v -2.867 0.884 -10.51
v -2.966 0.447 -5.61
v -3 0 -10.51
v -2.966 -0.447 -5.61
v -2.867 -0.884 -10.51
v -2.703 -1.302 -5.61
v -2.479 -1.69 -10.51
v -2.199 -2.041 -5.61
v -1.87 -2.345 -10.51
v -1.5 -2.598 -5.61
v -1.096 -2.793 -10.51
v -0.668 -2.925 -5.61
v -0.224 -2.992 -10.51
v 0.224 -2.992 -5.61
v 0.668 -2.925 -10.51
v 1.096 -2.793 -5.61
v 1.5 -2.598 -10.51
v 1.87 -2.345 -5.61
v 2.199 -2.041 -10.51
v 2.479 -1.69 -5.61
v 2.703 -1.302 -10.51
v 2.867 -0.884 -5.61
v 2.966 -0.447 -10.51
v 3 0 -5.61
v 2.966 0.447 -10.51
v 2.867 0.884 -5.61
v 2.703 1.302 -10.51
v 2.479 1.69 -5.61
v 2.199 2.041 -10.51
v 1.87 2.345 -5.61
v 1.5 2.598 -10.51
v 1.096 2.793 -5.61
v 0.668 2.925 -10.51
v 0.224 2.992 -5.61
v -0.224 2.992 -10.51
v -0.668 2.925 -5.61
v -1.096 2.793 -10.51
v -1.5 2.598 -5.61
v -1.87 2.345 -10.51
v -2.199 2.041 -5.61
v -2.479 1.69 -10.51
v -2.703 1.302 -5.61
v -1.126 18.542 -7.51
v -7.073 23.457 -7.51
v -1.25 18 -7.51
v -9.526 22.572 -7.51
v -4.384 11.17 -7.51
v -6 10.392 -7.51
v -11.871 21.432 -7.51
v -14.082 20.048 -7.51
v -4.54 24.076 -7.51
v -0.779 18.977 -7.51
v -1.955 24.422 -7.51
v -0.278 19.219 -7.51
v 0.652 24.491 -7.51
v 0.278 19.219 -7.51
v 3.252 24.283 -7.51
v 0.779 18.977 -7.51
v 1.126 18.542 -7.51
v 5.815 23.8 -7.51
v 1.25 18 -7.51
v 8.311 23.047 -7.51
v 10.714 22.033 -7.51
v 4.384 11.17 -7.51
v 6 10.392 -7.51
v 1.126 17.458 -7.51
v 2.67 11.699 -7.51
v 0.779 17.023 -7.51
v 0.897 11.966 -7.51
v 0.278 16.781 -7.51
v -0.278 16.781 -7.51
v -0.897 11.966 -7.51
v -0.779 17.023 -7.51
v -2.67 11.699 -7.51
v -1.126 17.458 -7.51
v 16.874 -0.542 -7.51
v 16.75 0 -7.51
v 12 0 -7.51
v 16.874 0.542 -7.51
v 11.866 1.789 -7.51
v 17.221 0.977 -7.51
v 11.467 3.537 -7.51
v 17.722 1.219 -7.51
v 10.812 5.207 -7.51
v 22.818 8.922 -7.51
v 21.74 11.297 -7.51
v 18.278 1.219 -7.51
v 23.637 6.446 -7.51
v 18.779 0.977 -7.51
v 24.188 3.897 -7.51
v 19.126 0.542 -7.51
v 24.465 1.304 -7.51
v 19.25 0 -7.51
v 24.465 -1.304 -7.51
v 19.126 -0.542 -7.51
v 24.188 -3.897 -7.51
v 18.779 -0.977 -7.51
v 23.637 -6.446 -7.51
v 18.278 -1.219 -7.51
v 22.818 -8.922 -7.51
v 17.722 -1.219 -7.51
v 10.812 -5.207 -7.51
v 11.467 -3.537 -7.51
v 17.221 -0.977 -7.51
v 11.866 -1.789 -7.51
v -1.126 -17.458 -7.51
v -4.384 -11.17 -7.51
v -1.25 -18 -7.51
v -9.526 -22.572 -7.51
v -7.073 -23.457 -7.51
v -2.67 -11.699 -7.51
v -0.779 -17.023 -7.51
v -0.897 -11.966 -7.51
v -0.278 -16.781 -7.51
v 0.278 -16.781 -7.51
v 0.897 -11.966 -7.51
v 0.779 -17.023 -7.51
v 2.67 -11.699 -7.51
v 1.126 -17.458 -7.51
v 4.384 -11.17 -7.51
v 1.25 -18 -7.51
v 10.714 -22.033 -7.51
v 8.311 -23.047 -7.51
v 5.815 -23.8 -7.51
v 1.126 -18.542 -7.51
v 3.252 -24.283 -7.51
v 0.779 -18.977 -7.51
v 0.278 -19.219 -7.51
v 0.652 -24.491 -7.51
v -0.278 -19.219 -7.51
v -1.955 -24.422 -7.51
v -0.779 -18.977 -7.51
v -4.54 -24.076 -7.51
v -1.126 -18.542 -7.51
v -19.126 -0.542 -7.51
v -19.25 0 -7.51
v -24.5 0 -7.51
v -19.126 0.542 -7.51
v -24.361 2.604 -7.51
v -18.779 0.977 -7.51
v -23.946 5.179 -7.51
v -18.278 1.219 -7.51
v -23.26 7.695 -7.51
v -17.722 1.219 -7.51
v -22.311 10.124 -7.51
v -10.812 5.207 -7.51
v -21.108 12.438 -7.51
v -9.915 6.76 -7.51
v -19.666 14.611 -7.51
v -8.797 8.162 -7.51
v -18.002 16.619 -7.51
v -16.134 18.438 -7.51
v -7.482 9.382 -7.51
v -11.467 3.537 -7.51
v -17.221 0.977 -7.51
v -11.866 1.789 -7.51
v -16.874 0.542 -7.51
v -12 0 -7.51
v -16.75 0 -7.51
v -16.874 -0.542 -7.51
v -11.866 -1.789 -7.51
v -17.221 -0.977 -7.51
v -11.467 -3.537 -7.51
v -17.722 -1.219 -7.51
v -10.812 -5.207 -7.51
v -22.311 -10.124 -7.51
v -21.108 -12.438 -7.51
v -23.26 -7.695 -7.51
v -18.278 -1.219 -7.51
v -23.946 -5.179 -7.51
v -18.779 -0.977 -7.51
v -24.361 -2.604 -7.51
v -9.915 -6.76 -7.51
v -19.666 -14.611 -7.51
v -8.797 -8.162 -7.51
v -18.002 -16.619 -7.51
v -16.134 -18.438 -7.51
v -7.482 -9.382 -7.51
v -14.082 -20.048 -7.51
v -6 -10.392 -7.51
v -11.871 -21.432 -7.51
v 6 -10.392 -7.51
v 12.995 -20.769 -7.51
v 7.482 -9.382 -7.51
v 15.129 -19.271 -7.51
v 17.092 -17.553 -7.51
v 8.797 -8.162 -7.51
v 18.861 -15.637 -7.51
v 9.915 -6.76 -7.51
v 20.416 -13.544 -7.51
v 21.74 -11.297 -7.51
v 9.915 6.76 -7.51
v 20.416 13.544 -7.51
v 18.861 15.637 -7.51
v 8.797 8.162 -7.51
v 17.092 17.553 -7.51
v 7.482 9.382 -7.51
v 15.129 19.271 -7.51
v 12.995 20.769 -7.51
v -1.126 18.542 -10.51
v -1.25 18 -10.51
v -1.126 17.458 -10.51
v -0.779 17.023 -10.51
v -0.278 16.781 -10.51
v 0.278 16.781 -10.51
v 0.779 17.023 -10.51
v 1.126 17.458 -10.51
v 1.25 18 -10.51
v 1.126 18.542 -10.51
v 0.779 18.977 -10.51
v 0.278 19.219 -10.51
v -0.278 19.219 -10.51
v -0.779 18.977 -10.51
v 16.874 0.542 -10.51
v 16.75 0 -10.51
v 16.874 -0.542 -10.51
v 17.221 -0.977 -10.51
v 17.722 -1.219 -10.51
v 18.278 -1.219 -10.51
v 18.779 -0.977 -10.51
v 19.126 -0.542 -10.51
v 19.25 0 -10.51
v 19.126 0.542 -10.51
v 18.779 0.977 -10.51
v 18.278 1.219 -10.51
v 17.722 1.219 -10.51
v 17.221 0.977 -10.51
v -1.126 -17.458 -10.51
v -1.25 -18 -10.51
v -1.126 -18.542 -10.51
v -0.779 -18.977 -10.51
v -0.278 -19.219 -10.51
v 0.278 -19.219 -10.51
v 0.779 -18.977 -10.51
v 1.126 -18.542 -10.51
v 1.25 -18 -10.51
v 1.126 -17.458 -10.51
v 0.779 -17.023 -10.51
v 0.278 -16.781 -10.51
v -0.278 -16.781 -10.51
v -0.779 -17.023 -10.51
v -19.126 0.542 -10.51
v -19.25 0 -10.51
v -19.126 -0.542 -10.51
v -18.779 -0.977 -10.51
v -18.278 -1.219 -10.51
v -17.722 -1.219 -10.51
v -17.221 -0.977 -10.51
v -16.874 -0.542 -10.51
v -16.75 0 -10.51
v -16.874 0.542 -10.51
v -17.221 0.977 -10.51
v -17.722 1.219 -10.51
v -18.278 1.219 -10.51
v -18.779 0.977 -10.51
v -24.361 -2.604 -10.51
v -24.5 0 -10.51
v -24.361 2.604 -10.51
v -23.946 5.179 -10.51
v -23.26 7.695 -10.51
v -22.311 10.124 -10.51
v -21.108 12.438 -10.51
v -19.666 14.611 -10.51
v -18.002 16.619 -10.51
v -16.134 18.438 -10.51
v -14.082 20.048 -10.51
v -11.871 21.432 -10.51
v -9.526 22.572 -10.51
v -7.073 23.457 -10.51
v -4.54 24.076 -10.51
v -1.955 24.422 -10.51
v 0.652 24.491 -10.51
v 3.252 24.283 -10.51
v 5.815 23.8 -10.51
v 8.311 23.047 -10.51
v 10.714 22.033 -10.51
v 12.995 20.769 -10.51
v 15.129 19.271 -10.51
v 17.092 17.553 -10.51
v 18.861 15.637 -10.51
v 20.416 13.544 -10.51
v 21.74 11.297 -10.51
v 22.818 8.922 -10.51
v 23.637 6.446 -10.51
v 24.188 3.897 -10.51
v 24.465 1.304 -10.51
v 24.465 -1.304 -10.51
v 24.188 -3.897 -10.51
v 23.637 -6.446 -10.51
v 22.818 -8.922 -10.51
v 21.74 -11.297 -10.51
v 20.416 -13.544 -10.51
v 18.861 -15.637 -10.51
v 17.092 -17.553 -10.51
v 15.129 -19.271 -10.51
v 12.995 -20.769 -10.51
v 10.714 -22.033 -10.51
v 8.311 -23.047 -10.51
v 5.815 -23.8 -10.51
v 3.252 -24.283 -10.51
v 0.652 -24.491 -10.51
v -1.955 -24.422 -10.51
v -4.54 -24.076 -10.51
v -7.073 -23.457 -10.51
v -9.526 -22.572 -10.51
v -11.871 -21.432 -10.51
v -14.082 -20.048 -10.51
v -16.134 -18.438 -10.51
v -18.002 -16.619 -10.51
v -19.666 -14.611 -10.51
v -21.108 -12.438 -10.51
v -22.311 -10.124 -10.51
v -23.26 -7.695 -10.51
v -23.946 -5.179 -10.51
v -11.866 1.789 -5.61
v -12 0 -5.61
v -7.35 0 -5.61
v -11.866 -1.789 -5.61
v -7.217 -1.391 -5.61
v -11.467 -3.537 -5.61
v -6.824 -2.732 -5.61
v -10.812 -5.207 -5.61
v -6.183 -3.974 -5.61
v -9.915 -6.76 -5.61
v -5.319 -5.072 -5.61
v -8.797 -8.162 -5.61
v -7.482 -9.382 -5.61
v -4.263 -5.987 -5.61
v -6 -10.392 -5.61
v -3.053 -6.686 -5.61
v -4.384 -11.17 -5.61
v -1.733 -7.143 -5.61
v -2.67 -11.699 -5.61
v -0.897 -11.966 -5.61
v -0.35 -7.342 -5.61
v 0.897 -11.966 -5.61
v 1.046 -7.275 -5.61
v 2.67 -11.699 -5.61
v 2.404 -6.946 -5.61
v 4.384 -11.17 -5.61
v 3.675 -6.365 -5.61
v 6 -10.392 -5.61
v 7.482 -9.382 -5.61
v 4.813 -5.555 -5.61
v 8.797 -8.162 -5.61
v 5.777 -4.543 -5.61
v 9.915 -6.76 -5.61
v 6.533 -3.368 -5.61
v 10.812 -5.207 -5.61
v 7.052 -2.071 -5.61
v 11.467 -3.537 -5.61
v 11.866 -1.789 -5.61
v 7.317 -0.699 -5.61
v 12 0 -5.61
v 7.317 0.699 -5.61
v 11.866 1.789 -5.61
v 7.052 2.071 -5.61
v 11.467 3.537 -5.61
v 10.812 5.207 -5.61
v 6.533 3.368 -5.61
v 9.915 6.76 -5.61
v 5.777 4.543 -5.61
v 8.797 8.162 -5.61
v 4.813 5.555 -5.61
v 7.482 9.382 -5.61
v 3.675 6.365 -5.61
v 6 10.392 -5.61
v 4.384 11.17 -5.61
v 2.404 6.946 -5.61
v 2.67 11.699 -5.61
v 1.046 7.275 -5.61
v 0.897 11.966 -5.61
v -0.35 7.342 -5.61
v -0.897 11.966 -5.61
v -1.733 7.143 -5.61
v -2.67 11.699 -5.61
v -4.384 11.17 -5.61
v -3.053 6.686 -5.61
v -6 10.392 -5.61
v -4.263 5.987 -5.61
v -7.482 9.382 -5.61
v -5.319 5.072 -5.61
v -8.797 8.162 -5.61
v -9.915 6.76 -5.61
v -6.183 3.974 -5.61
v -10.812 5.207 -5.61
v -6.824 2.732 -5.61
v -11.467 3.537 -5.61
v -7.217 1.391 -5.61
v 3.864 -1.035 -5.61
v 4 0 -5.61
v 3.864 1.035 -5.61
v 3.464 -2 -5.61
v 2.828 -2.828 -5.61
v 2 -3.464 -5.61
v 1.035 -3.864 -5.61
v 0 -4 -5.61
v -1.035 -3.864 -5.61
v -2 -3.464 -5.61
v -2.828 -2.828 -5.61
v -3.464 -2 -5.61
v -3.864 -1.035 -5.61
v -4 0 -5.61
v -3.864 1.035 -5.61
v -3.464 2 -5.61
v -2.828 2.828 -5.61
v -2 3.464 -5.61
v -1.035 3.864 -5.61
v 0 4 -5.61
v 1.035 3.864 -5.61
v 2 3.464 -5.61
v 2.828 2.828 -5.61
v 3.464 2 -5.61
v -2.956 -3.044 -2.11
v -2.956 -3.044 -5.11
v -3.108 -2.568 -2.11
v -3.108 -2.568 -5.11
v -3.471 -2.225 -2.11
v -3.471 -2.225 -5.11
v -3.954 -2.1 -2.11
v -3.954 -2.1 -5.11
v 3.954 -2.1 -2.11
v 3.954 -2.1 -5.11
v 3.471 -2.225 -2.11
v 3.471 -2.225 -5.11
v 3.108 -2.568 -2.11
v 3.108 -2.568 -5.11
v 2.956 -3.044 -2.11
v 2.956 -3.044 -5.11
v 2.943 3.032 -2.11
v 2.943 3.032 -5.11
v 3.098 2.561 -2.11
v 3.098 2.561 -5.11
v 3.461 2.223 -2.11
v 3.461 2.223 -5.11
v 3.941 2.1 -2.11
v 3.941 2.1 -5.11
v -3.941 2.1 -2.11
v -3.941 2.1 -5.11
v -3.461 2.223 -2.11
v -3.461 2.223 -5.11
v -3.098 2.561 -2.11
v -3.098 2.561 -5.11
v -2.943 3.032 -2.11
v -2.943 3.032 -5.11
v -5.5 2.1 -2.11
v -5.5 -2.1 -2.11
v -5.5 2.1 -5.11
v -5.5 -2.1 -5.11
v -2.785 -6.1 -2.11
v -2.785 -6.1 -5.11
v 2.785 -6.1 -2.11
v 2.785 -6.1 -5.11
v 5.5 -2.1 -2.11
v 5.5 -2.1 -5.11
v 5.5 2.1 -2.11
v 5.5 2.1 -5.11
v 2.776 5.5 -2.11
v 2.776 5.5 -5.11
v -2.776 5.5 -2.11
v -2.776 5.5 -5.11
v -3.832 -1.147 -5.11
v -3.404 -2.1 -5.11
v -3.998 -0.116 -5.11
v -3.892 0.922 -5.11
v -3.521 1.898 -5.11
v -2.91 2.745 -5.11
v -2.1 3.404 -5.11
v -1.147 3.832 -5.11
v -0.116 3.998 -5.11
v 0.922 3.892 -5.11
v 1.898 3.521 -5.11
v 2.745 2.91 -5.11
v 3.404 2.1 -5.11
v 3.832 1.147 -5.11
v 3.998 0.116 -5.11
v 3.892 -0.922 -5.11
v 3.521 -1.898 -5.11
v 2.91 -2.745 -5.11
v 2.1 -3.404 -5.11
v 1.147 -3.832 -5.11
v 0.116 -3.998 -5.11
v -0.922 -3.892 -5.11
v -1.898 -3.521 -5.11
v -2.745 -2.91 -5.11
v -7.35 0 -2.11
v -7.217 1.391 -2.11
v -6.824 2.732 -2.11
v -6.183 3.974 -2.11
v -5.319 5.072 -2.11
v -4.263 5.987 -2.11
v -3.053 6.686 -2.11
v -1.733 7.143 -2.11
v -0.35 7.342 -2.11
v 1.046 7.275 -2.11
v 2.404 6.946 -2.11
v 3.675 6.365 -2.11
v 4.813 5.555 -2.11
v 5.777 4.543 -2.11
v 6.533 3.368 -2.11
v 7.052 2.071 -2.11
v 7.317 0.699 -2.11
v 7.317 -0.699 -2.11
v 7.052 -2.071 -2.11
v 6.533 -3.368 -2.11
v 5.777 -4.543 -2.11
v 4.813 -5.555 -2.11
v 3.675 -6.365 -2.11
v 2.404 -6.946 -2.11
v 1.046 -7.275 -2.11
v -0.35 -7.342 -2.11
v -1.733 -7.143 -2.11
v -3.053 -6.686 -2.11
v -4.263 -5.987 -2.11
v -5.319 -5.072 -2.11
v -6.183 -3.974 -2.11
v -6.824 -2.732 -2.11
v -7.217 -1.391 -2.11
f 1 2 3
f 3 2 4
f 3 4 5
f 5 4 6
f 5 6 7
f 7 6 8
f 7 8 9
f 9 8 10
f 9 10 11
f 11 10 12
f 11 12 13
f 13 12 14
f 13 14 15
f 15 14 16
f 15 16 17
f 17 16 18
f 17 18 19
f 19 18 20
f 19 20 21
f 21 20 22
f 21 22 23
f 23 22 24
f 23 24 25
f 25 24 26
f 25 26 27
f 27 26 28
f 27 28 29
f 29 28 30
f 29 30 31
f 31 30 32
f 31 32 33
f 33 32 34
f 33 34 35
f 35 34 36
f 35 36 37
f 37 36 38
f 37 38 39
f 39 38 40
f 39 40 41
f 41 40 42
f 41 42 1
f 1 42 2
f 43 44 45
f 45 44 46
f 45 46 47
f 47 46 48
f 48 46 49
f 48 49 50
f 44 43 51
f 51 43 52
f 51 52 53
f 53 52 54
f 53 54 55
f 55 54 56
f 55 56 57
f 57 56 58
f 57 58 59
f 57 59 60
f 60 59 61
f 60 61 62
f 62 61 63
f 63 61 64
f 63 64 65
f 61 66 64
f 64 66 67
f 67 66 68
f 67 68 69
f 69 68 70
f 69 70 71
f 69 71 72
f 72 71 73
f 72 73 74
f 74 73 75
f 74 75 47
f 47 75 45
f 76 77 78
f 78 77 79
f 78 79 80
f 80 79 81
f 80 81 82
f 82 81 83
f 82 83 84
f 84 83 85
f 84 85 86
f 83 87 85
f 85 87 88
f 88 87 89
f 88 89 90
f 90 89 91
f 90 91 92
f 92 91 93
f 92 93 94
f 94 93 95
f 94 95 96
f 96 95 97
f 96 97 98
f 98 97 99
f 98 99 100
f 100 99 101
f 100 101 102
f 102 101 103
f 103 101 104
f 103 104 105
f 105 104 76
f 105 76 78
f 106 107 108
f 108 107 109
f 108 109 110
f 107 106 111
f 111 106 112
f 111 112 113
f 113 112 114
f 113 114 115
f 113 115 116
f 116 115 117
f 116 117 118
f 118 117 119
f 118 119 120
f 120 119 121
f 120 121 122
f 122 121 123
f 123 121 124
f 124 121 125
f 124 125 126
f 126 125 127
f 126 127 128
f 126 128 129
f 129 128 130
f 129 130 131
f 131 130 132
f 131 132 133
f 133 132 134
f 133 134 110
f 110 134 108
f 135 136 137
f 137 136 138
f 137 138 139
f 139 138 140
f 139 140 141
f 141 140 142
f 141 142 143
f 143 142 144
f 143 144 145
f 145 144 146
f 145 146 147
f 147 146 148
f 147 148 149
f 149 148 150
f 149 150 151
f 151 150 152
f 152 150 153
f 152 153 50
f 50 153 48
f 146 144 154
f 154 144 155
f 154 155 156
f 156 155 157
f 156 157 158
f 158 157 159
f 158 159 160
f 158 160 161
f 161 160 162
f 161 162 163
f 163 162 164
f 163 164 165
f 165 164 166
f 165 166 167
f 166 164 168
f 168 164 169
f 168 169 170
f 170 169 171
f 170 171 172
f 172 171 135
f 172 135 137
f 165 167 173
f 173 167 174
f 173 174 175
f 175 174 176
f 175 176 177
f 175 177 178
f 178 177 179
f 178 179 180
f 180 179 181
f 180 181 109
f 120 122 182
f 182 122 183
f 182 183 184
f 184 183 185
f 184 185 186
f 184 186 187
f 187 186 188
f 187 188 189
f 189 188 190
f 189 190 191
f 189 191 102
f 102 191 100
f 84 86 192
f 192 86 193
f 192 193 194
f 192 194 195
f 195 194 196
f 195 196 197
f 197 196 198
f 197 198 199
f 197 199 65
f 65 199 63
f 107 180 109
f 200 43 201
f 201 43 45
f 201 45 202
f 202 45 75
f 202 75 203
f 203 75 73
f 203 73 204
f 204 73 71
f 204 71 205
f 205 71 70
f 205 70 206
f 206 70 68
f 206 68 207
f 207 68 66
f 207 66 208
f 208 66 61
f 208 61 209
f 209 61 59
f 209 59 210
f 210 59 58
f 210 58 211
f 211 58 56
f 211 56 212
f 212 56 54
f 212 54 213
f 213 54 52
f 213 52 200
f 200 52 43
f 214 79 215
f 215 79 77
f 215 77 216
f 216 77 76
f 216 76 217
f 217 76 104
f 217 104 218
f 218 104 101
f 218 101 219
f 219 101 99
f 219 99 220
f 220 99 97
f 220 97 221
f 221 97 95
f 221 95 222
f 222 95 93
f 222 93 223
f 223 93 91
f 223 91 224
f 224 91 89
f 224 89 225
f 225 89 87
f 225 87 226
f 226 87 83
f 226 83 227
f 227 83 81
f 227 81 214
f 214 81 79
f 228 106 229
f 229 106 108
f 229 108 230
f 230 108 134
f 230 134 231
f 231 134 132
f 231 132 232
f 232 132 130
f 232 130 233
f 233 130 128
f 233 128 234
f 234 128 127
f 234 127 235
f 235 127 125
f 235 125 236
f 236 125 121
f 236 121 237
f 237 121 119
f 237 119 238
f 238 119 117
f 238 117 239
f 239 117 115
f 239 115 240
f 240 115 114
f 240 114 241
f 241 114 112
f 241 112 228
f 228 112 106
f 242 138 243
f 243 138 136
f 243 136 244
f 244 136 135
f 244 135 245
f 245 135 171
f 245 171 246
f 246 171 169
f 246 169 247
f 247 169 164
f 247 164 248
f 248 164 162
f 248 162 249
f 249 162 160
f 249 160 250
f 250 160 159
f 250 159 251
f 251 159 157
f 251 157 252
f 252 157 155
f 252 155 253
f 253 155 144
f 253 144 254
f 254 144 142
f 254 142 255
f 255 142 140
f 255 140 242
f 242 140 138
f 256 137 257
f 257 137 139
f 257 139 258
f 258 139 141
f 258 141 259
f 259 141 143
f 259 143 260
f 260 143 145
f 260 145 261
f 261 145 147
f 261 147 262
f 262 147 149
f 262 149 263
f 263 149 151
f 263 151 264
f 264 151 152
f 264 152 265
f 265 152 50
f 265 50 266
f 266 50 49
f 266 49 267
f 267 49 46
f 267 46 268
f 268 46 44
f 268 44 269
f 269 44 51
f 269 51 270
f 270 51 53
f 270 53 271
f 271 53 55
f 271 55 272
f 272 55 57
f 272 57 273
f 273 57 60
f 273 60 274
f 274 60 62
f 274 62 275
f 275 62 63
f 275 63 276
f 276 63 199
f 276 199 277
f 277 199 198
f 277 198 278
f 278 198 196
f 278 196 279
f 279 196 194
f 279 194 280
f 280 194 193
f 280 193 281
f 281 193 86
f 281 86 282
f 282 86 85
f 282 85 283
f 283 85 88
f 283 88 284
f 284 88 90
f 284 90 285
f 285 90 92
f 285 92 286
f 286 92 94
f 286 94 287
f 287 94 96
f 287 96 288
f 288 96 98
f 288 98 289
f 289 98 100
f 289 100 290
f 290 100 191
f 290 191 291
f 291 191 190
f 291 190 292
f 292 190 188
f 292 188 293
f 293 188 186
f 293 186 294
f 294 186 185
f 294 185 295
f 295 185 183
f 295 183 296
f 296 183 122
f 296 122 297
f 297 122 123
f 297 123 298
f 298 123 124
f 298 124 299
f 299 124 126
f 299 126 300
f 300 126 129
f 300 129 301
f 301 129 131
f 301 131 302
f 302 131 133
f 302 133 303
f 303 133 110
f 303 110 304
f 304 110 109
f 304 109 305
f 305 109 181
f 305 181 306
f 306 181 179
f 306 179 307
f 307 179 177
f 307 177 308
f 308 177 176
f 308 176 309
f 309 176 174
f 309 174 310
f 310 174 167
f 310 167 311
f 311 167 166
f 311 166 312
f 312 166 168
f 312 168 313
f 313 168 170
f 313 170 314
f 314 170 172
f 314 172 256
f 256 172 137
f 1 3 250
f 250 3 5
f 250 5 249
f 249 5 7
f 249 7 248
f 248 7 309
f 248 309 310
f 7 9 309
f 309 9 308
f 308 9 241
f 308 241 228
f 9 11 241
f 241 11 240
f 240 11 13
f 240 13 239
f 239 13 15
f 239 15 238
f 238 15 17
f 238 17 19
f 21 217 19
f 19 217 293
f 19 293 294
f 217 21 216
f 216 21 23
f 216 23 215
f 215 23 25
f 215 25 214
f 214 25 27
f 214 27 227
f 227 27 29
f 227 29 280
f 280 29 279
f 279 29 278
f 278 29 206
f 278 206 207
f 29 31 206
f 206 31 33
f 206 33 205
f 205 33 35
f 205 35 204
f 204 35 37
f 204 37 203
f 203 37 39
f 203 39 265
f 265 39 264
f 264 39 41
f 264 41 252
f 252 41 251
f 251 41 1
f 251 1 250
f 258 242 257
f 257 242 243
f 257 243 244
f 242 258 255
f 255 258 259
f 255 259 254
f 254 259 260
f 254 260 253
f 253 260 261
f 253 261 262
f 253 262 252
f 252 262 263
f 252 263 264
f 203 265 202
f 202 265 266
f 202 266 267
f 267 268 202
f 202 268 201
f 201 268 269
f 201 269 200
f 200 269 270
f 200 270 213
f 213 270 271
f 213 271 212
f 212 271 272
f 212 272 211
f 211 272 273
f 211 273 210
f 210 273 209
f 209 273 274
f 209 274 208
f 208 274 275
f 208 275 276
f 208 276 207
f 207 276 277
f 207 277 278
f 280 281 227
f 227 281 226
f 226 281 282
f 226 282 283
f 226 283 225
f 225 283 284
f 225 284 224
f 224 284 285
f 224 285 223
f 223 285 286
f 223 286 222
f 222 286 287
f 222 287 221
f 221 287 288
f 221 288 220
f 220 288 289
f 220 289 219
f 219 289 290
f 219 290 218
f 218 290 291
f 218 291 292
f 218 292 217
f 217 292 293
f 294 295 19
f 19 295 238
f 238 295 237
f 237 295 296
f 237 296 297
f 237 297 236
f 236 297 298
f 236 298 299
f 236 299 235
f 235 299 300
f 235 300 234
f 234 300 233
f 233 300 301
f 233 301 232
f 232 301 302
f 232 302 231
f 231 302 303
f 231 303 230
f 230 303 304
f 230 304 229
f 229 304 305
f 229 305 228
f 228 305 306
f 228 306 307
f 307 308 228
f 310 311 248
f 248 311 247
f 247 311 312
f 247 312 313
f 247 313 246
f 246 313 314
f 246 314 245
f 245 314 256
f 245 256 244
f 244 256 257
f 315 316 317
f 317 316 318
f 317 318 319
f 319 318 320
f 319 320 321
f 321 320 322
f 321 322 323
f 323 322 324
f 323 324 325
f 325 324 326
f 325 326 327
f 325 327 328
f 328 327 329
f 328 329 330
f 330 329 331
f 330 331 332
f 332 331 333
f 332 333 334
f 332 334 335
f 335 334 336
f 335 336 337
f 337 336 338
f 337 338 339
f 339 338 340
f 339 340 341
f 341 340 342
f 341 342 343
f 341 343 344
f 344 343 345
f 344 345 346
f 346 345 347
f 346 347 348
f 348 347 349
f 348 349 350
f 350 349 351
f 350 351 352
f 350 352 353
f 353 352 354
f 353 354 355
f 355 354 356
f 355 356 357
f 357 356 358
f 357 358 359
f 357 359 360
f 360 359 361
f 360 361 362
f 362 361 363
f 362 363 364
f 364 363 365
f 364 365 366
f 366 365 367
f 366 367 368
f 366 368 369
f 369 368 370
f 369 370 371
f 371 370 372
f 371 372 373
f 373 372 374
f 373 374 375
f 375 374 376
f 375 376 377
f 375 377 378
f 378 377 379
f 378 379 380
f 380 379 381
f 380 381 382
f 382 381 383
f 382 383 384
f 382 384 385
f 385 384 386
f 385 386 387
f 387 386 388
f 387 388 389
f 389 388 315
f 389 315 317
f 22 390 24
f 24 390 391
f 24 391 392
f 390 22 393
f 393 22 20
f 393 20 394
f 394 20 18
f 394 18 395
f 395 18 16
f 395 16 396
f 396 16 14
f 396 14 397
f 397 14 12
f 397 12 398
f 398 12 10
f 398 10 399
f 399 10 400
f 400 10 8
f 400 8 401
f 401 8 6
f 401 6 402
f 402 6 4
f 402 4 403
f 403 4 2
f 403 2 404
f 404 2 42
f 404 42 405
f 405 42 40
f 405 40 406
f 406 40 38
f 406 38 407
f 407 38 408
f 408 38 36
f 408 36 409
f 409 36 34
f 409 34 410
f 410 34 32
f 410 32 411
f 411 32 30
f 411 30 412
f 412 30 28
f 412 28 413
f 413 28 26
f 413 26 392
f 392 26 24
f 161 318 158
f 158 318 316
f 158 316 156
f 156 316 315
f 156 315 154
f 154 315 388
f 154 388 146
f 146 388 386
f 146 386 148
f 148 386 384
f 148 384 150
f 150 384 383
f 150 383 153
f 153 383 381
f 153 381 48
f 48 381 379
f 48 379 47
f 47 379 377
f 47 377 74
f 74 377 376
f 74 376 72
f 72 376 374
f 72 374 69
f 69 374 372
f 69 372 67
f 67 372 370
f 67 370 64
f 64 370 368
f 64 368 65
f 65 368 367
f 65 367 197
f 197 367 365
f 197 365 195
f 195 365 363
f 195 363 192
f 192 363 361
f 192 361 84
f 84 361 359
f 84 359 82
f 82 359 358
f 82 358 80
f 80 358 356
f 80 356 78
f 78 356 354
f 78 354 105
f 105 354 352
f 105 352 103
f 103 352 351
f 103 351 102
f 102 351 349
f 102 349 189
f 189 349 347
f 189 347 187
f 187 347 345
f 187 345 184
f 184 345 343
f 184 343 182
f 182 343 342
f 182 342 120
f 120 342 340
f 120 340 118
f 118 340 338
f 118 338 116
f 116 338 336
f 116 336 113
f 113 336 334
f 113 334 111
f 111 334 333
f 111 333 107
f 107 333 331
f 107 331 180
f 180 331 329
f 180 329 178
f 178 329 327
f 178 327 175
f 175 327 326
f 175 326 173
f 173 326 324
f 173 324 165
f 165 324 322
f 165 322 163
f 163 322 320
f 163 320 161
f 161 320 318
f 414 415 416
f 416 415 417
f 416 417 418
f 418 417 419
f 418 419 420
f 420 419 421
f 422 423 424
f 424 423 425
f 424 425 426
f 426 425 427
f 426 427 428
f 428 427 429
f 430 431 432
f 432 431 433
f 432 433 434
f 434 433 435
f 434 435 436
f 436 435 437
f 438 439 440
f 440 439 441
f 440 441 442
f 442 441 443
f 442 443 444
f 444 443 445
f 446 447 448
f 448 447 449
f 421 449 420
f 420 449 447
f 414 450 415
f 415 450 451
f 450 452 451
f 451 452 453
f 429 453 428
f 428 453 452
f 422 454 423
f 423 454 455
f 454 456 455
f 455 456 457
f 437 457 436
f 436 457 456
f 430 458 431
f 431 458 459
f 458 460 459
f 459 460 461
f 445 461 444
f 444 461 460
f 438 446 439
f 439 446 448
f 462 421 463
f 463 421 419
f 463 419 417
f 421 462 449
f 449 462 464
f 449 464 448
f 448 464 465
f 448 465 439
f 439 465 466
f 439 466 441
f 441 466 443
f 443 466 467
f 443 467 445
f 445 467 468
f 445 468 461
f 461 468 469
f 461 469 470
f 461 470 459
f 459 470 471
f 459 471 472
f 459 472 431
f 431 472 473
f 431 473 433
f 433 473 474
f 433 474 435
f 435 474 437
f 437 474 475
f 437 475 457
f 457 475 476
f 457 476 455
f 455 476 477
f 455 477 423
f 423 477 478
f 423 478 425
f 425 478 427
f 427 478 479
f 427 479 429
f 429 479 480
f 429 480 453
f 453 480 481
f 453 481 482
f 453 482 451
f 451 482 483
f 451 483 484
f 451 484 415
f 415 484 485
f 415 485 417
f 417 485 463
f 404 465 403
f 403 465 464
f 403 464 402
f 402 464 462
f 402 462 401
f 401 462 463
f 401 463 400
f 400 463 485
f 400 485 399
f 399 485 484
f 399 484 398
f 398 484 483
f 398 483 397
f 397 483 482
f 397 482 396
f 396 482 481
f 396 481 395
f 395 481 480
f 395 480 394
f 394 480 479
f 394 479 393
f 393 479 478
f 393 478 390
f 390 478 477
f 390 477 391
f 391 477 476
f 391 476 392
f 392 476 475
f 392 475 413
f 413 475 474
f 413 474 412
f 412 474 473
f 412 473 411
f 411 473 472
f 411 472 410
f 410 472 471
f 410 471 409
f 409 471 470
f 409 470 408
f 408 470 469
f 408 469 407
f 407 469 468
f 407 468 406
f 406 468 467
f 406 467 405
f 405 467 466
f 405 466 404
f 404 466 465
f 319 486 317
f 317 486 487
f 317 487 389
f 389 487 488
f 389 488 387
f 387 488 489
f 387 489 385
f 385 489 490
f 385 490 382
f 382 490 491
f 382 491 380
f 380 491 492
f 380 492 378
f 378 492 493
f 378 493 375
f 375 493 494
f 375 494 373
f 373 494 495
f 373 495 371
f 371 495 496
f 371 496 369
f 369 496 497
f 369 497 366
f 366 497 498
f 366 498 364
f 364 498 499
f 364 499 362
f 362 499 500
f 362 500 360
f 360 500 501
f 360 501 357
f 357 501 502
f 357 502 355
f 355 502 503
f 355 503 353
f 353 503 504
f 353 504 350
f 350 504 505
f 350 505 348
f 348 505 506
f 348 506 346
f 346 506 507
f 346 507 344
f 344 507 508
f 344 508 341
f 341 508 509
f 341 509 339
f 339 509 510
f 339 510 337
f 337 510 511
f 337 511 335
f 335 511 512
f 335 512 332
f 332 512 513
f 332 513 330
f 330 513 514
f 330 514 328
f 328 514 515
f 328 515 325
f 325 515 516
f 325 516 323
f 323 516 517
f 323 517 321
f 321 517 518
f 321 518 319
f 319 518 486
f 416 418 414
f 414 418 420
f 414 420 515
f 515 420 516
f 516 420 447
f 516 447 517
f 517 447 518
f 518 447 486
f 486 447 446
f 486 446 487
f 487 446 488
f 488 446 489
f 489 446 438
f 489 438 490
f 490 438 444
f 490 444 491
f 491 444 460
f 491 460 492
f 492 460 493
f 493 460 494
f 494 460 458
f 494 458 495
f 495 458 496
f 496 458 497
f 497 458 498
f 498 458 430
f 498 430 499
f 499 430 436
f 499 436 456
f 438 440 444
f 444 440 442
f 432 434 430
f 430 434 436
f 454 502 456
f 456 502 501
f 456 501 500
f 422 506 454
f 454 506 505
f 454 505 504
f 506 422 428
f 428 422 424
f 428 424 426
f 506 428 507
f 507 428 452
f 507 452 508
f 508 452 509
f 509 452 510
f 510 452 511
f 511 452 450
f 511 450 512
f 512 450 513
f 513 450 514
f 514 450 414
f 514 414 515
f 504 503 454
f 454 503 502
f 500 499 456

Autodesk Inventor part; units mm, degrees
ref_plane "YZ Plane" through (0, 0, 0) normal (1, 0, 0) x (0, 1, 0)
ref_plane "XZ Plane" through (0, 0, 0) normal (0, 1, 0) x (-1, 0, 0)
ref_plane "XY Plane" through (0, 0, 0) normal (0, 0, 1) x (1, 0, 0)
sketch "스케치1" plane through (0, 0, 0) normal (0, 0, 1) x (1, 0, 0)
  circle A0 centre (0, 0) radius 2.5
  line L0 (-6.35, 0) -> (6.35, 0) construction
  line L1 (-6.35, -1.9) -> (6.35, -1.9)
  line L2 (6.35, 1.9) -> (-6.35, 1.9)
  arc A1 (-6.35, 1.9) -> (-6.35, -1.9) centre (-6.35, 0) ccw
  arc A2 (6.35, -1.9) -> (6.35, 1.9) centre (6.35, 0) ccw
  line L3 (0, 14.5) -> (0, -14.5) construction
  circle A3 centre (0, 14.5) radius 0.5
  circle A4 centre (0, -14.5) radius 0.5
  circle A5 centre (6.35, 0) radius 0.5
  circle A6 centre (-6.35, 0) radius 0.5
  circle A7 centre (-4.25, 0) radius 0.5
  circle A8 centre (4.25, 0) radius 0.5
  line L4 (0, -1.9) -> (0, -18.5)
  line L5 (0, 1.9) -> (0, 15.9)
  arc A9 (1.9954, 14.0355) -> (-1.9954, 14.0355) centre (0, 13.9) ccw
  arc A10 (-1.9969, -16.6117) -> (1.9969, -16.6117) centre (0, -16.5) ccw
  circle A11 centre (0, 0) radius 3.4
  line L6 (-1.9954, 14.0355) -> (-2.8196, 1.9)
  line L7 (1.9954, 14.0355) -> (2.8196, 1.9)
  line L8 (-2.8196, -1.9) -> (-1.9969, -16.6117)
  line L9 (2.8196, -1.9) -> (1.9969, -16.6117)
  circle A12 centre (0, 12.5) radius 0.5
  circle A13 centre (0, 10.5) radius 0.5
  circle A14 centre (0, 8.5) radius 0.5
  circle A15 centre (0, 6.5) radius 0.5
  circle A16 centre (0, 4.5) radius 0.5
  circle A17 centre (0, 0) radius 2.35
  circle A18 centre (0, -16.5) radius 0.5
  circle A19 centre (0, -12.5) radius 0.5
  circle A20 centre (0, -10.5) radius 0.5
  circle A21 centre (0, -8.5) radius 0.5
  circle A22 centre (0, -6.5) radius 0.5
  circle A23 centre (0, -4.5) radius 0.5
  dimension "d0" = 5
  dimension "d1" = 1.9
  dimension "d2" = 16.5
  dimension "d3" = 29
  dimension "d4" = 1
  dimension "d5" = 1
  dimension "d6" = 1
  dimension "d7" = 1
  dimension "d10" = 2.1
  dimension "d17" = 2.1
  dimension "d24" = 16.6
  dimension "d25" = 14
  dimension "d26" = 4
  dimension "d27" = 4
  dimension "d28" = 6.8
  dimension "d31" = 2
  dimension "d36" = 4.7
  dimension "d39" = 2
  dimension "d46" = 2
extrude "돌출1" add sketch "스케치1" along normal blind 2.2 contours A0 L1 A17 L2 | A0 L2 A11 L1 | L2 A17 L5 A0 | A0 L5 A11 L2 | L1 A11 L4 A0 | A0 L4 A17 L1 | L5 A17 L2 A0 | A0 L2 A11 L5 | A17 L1 L2 | L2 L5 A17 | L4 A11 L1 A0 | A0 L1 A17 L4 | A17 L4 L1 | L2 A17 L1 A0 | A0 L1 A11 L2 | L5 L2 A17 | A17 L1 L4
extrude "돌출2" add sketch "스케치1" against normal blind 2.11 contours A0 L1 A17 L2 | A0 L2 A11 L1 | L2 A17 L5 A0 | A0 L5 A11 L2 | L1 A11 L4 A0 | A0 L4 A17 L1 | L5 A17 L2 A0 | A0 L2 A11 L5 | L2 A2 L1 A11 | A11 L5 A16 A15 A14 A13 A12 A3 A9 L7 | A17 L1 L2 | L2 L5 A17 | L4 A11 L1 A0 | A0 L1 A17 L4 | A17 L4 L1 | L9 A10 L4 A18 A4 A19 A20 A21 A22 A23 A11 | L2 A17 L1 A0 | A0 L1 A11 L2 | L5 L2 A17 | A11 L6 A9 L5 A3 A12 A13 A14 A15 A16 | A17 L1 L4 | L4 A23 A22 A21 A20 A19 A4 A18 A10 L8 A11 | A11 L1 A1 L2
extrude "돌출3" cut sketch "스케치1" along normal blind 3.65 contours A17 L1 L2 | L2 L5 A17 | A17 L4 L1 | L5 L2 A17 | A17 L1 L4
sketch "스케치2" plane through (0, 0, 0) normal (0, 0, 1) x (1, 0, 0)
  circle A0 centre (0, 0) radius 1.25
  dimension "d57" = 2.5
extrude "돌출4" cut sketch "스케치2" against normal blind 7.6
sketch "스케치3" plane through (0, 0, -2.11) normal (0, 0, -1) x (-1, 0, 0)
  circle A0 centre (0, 0) radius 2.25
  dimension "d60" = 4.5
extrude "돌출5" cut sketch "스케치3" against normal blind 1
sketch "스케치4" plane through (0, 0, -2.11) normal (0, 0, -1) x (-1, 0, 0)
  point P0 (0, 0)
sketch "스케치5" plane through (0, 0, -2.11) normal (0, 0, -1) x (-1, 0, 0)
  circle A0 centre (0, 0) radius 3.4
  circle A1 centre (0, 0) radius 2.25
  dimension "d63" = 4.5
  dimension "d64" = 6.8
extrude "돌출6" add sketch "스케치5" along normal blind 0.4
sketch "스케치6" plane through (0, 0, -2.11) normal (0, 0, -1) x (-1, 0, 0)
  line L0 (0.9014, 15.3127) -> (-1.0592, 15.3127)
  line L1 (-1.0592, 15.3127) -> (-1.0592, 3.6394)
  line L2 (-1.0592, 3.6394) -> (0.9014, 3.6394)
  line L3 (0.9014, 3.6394) -> (0.9014, 15.3127)
  line L4 (1.0141, -3.7747) -> (-1.0592, -3.7747)
  line L5 (-1.0592, -3.7747) -> (-1.0592, -17.386)
  line L6 (-1.0592, -17.386) -> (1.0141, -17.386)
  line L7 (1.0141, -17.386) -> (1.0141, -3.7747)
  point P0 (0, 0)
extrude "돌출7" add sketch "스케치6" against normal blind 2.11
sketch "스케치7" plane through (0, 0, -2.11) normal (0, 0, -1) x (-1, 0, 0)
  circle A0 centre (0, 14.3) radius 0.5
  arc A1 (1.9954, 14.0355) -> (-1.9954, 14.0355) centre (0, 13.9) ccw projected
  line L0 (0, 0) -> (0, 0.7105)
  line L1 (0, 0) -> (0.8275, 0)
  circle A2 centre (0, 12.3) radius 0.5
  circle A3 centre (0, 10.3) radius 0.5
  circle A4 centre (0, 8.3) radius 0.5
  circle A5 centre (0, 6.3) radius 0.5
  circle A6 centre (0, 4.3) radius 0.5
  line L2 (0, 15.9) -> (3.4178, 15.9)
  arc A7 (1.9954, 14.0355) -> (-1.9954, 14.0355) centre (0, 13.9) ccw projected
  circle A8 centre (0, -16.9) radius 0.5
  arc A9 (-1.9969, -16.6117) -> (1.9969, -16.6117) centre (0, -16.5) ccw projected
  circle A10 centre (0, -14.9) radius 0.5
  circle A11 centre (0, -12.9) radius 0.5
  circle A12 centre (0, -10.9) radius 0.5
  circle A13 centre (0, -8.9) radius 0.5
  circle A14 centre (0, -6.9) radius 0.5
  circle A15 centre (0, -4.9) radius 0.5
  point P0 (0, -18.5)
  dimension "d69" = 1
  dimension "d73" = 2
  dimension "d78" = 1.6
  dimension "d79" = 1
  dimension "d80" = 1.6
  dimension "d86" = 2
extrude "돌출8" cut sketch "스케치7" against normal blind 2.11
sketch "스케치9" plane through (0, 0, -2.11) normal (0, 0, -1) x (-1, 0, 0)
  circle A0 centre (0, 8.3) radius 0.5 projected
  line L0 (0.5, 8.3) -> (3.8465, 8.3)
  line L1 (3.8465, 8.3) -> (3.8465, 17.7965)
  line L2 (3.8465, 17.7965) -> (-4.3088, 17.7965)
  line L3 (-4.3088, 17.7965) -> (-4.3088, 8.3)
  line L4 (-4.3088, 8.3) -> (0.2806, 8.3)
  circle A1 centre (0, -8.9) radius 0.5 projected
  line L5 (0, -8.9) -> (5.2333, -8.9)
  line L6 (5.2333, -8.9) -> (5.2333, -19.7775)
  line L7 (5.2333, -19.7775) -> (-4.9031, -19.7775)
  line L8 (-4.9031, -19.7775) -> (-4.9031, -8.9)
  line L9 (-4.9031, -8.9) -> (0, -8.9)
  point P0 (0, 0)
  point P1 (0.5, -8.9)
  point P2 (-0.5, -8.9)
  point P3 (-0.5, 8.3)
extrude "돌출9" cut sketch "스케치9" against normal blind 10 contours A0 L4 L3 L2 L1 L0 | L5 L6 L7 L8 L9 A1
sketch "스케치10" plane through (0, 0, -2.11) normal (0, 0, -1) x (-1, 0, 0)
  line L0 (-0.0004, 7.8) -> (4.3151, 7.8)
  line L1 (4.3151, 7.8) -> (3.7805, 10.6296)
  line L2 (3.7805, 10.6296) -> (-3.3513, 10.6296)
  line L3 (-3.3513, 10.6296) -> (-3.4414, 7.8)
  line L4 (-3.4414, 7.8) -> (-0.0004, 7.8)
  arc A0 (-0.5, 8.3) -> (0.5, 8.3) centre (0, 8.3) ccw projected
  arc A1 (0.5, -8.9) -> (-0.5, -8.9) centre (0, -8.9) ccw projected
  line L5 (0, -8.4) -> (4.5069, -8.4)
  line L6 (4.5069, -8.4) -> (4.5069, -10.1694)
  line L7 (4.5069, -10.1694) -> (-4.0138, -10.1694)
  line L8 (-4.0138, -10.1694) -> (-4.0138, -8.4)
  line L9 (-4.0138, -8.4) -> (0, -8.4)
  point P0 (0, 0)
extrude "돌출10" cut sketch "스케치10" against normal blind 10
fillet "모깎기1" radius 2 4 edges at (2.4189, 7.8, -1.055) (-2.4189, 7.8, -1.055) (-2.4561, -8.4, -1.055) (2.4561, -8.4, -1.055)
sketch "스케치11" plane through (0, 0, -2.11) normal (0, 0, -1) x (-1, 0, 0)
  line L0 (-6.35, -1.9) -> (-2.8196, -1.9) projected
  line L1 (-2.8196, 1.9) -> (-6.35, 1.9) projected
  circle A0 centre (0, 6.3) radius 0.5 projected
  circle A1 centre (0, -6.9) radius 0.5 projected
  line L2 (2.8196, 1.9) -> (2.5455, 5.9355) projected
  line L3 (-2.5455, 5.9355) -> (-2.8196, 1.9) projected
  line L4 (0.5501, 7.8) -> (-0.5501, 7.8) projected
  line L5 (-2.8196, -1.9) -> (-2.5617, -6.5117) projected
  line L6 (2.5617, -6.5117) -> (2.8196, -1.9) projected
  point P0 (0, 0)
  point P1 (-4.5848, -1.9)
  point P2 (-4.5848, 1.9)
  point P3 (0, 7.8)
  dimension "d95" = 3.8
  dimension "d96" = 6.3
  dimension "d97" = 6.9
  dimension "d98" = 7.77
  dimension "d99" = 7.8
  dimension "d100" = 6.401
sketch "스케치12" plane through (0, 0, -2.11) normal (0, 0, -1) x (-1, 0, 0)
  line L0 (2.5785, 5.3) -> (-2.5887, 5.3)
  line L1 (-2.5455, 5.9355) -> (-2.8196, 1.9) projected
  circle A0 centre (0, 4.3) radius 0.5 projected
  line L2 (3.3006, -5.9) -> (-2.5959, -5.9)
  line L3 (-2.8196, -1.9) -> (-2.5617, -6.5117) projected
  circle A1 centre (0, -4.9) radius 0.5 projected
  line L4 (2.8196, 1.9) -> (6.35, 1.9) projected
  line L5 (5.3, 1.9) -> (5.3, -1.9)
  circle A2 centre (4.25, 0) radius 0.5 projected
  line L6 (-6.35, 1.9) -> (-2.8196, 1.9) projected
  line L7 (-5.3, 1.9) -> (-5.3, -2.6397)
  circle A3 centre (-4.25, 0) radius 0.5 projected
  line L8 (5.3, 1.9) -> (9.4862, 1.9)
  line L9 (9.4862, 1.9) -> (9.4862, -2.8158)
  line L10 (9.4862, -2.8158) -> (5.3, -2.8158)
  line L11 (5.3, -2.8158) -> (5.3, 1.9)
  line L12 (3.3006, -5.9) -> (-3.636, -5.9)
  line L13 (-3.636, -5.9) -> (-3.636, -9.5734)
  line L14 (-3.636, -9.5734) -> (3.3006, -9.5734)
  line L15 (3.3006, -9.5734) -> (3.3006, -5.9)
  line L16 (-5.3, -2.6397) -> (-8.4677, -2.6397)
  line L17 (-8.4677, -2.6397) -> (-8.4677, 1.9)
  line L18 (-8.4677, 1.9) -> (-5.3, 1.9)
  line L19 (-5.3, 1.9) -> (-5.3, -2.6397)
  line L20 (-2.5887, 5.3) -> (3.3006, 5.3)
  line L21 (3.3006, 5.3) -> (3.3006, 8.0343)
  line L22 (3.3006, 8.0343) -> (-2.5887, 8.0343)
  line L23 (-2.5887, 8.0343) -> (-2.5887, 5.3)
  point P0 (0, 0)
  point P1 (-0.0051, 5.3)
  point P2 (-2.5617, -5.9)
  point P3 (-2.5959, -5.9)
  dimension "d101" = 1
  dimension "d102" = 1
  dimension "d104" = 1.05
  dimension "d105" = 1.05
extrude "돌출11" cut sketch "스케치12" against normal blind 10 contours L0 L23 L22 L21 L20 | L15 L14 L13 L12 L2 | L4 L8 L9 L10 L11 L5 | L6 L7 L16 L17 L18
sketch "스케치14" plane through (0, 0, -2.11) normal (0, 0, -1) x (-1, 0, 0)
  line L0 (2.5887, 5.3) -> (-2.5887, 5.3) projected
  line L1 (-2.5887, 5.3) -> (-2.8196, 1.9) projected
  arc A0 (2.8196, 1.9) -> (-2.8196, 1.9) centre (0, 0) ccw projected
  line L2 (2.8196, 1.9) -> (2.5887, 5.3) projected
  circle A1 centre (0, 4.3) radius 0.5 projected
  circle A2 centre (0, 0) radius 3.4 projected
  circle A3 centre (0, 0) radius 2.25 projected
  line L3 (5.3, -1.9) -> (5.3, 1.9) projected
  line L4 (5.3, 1.9) -> (2.8196, 1.9) projected
  arc A4 (2.8196, -1.9) -> (2.8196, 1.9) centre (0, 0) ccw projected
  line L5 (2.8196, -1.9) -> (5.3, -1.9) projected
  circle A5 centre (4.25, 0) radius 0.5 projected
  line L6 (-2.5959, -5.9) -> (2.5959, -5.9) projected
  line L7 (2.5959, -5.9) -> (2.8196, -1.9) projected
  arc A6 (-2.8196, -1.9) -> (2.8196, -1.9) centre (0, 0) ccw projected
  line L8 (-2.8196, -1.9) -> (-2.5959, -5.9) projected
  circle A7 centre (0, -4.9) radius 0.5 projected
  line L9 (-5.3, 1.9) -> (-5.3, -1.9) projected
  line L10 (-5.3, -1.9) -> (-2.8196, -1.9) projected
  arc A8 (-2.8196, 1.9) -> (-2.8196, -1.9) centre (0, 0) ccw projected
  line L11 (-2.8196, 1.9) -> (-5.3, 1.9) projected
  circle A9 centre (-4.25, 0) radius 0.5 projected
  circle A10 centre (0, 0) radius 1.25 projected
  circle A11 centre (0, 0) radius 2.25 projected
  circle A12 centre (0, 0) radius 7.35
  point P0 (2.8196, -1.9)
  dimension "d111" = 14.7
sketch "스케치15" plane through (0, 0, -2.51) normal (0, 0, -1) x (-1, 0, 0)
  line L0 (-8.2432, 8.5445) -> (15.2986, 8.5445)
  line L1 (15.2986, 8.5445) -> (15.2986, -14.1463)
  line L2 (15.2986, -14.1463) -> (-8.2432, -14.1463)
  line L3 (-8.2432, -14.1463) -> (-8.2432, 8.5445)
  point P0 (0, 0)
extrude "돌출12" cut sketch "스케치15" along normal mid plane 10
extrude "돌출13" add sketch "스케치14" along normal blind 3 contours A12
sketch "스케치16" plane through (0, 0, -5.11) normal (0, 0, -1) x (-1, 0, 0)
  circle A0 centre (0, 0) radius 4
  circle A1 centre (0, 0) radius 7.35
  circle A2 centre (0, 0) radius 7.35 projected
  dimension "d114" = 8
extrude "돌출14" add sketch "스케치16" along normal blind 0.5
sketch "스케치17" plane through (0, 0, -2.11) normal (0, 0, 1) x (1, 0, 0)
  circle A0 centre (0, 0) radius 7.35 projected
  line L0 (2.5887, 5.3) -> (-2.5887, 5.3) projected
  line L1 (2.8196, 1.9) -> (2.5887, 5.3) projected
  line L2 (5.3, 1.9) -> (2.8196, 1.9) projected
  line L3 (5.3, -1.9) -> (5.3, 1.9) projected
  line L4 (2.8196, -1.9) -> (5.3, -1.9) projected
  line L5 (2.5959, -5.9) -> (2.8196, -1.9) projected
  line L6 (-2.5959, -5.9) -> (2.5959, -5.9) projected
  line L7 (-2.8196, -1.9) -> (-2.5959, -5.9) projected
  line L8 (-5.3, -1.9) -> (-2.8196, -1.9) projected
  line L9 (-5.3, 1.9) -> (-5.3, -1.9) projected
  line L10 (-2.8196, 1.9) -> (-5.3, 1.9) projected
  line L11 (-2.5887, 5.3) -> (-2.8196, 1.9) projected
  line L12 (-2.7755, 5.5) -> (2.7755, 5.5)
  line L13 (2.7755, 5.5) -> (3.0065, 2.1)
  line L14 (3.0065, 2.1) -> (5.5, 2.1)
  line L15 (5.5, 2.1) -> (5.5, -2.1)
  line L16 (5.5, -2.1) -> (3.0087, -2.1)
  line L17 (3.0087, -2.1) -> (2.785, -6.1)
  line L18 (2.785, -6.1) -> (-2.785, -6.1)
  line L19 (-2.785, -6.1) -> (-3.0087, -2.1)
  line L20 (-3.0087, -2.1) -> (-5.5, -2.1)
  line L21 (-5.5, -2.1) -> (-5.5, 2.1)
  line L22 (-5.5, 2.1) -> (-3.0065, 2.1)
  line L23 (-3.0065, 2.1) -> (-2.7755, 5.5)
  dimension "d117" = 0.2
extrude "돌출15" cut sketch "스케치17" against normal blind 3 contours L1 L2 L3 L4 L5 L6 L7 L8 L9 L10 L11 L0 | L12 L13 L14 L15 L16 L17 L18 L19 L20 L21 L22 L23
fillet "모깎기2" radius 1 4 edges at (-3.0065, 2.1, -3.61) (3.0065, 2.1, -3.61) (3.0087, -2.1, -3.61) (-3.0087, -2.1, -3.61)
sketch "스케치18" plane through (0, 0, -5.61) normal (0, 0, -1) x (-1, 0, 0)
  circle A0 centre (0, 0) radius 12
  dimension "d121" = 24
extrude "돌출16" add sketch "스케치18" along normal blind 1.9
sketch "스케치19" plane through (0, 0, -7.51) normal (0, 0, -1) x (-1, 0, 0)
  circle A0 centre (0, 0) radius 24.5
  circle A1 centre (0, 18) radius 1.25
  circle A2 centre (-18, 0) radius 1.25
  circle A3 centre (0, -18) radius 1.25
  circle A4 centre (18, 0) radius 1.25
  dimension "d124" = 49
  dimension "d125" = 2.5
  dimension "d126" = 18
  dimension "d129" = 360
extrude "돌출17" add sketch "스케치19" along normal blind 3
sketch "스케치20" plane through (0, 0, -5.61) normal (0, 0, 1) x (1, 0, 0)
  circle A0 centre (0, 0) radius 4 projected
  circle A1 centre (0, 0) radius 3
  dimension "d133" = 6
extrude "돌출18" cut sketch "스케치20" against normal blind 16 contours A1
properties part number "180도 서보모터 십자축"
